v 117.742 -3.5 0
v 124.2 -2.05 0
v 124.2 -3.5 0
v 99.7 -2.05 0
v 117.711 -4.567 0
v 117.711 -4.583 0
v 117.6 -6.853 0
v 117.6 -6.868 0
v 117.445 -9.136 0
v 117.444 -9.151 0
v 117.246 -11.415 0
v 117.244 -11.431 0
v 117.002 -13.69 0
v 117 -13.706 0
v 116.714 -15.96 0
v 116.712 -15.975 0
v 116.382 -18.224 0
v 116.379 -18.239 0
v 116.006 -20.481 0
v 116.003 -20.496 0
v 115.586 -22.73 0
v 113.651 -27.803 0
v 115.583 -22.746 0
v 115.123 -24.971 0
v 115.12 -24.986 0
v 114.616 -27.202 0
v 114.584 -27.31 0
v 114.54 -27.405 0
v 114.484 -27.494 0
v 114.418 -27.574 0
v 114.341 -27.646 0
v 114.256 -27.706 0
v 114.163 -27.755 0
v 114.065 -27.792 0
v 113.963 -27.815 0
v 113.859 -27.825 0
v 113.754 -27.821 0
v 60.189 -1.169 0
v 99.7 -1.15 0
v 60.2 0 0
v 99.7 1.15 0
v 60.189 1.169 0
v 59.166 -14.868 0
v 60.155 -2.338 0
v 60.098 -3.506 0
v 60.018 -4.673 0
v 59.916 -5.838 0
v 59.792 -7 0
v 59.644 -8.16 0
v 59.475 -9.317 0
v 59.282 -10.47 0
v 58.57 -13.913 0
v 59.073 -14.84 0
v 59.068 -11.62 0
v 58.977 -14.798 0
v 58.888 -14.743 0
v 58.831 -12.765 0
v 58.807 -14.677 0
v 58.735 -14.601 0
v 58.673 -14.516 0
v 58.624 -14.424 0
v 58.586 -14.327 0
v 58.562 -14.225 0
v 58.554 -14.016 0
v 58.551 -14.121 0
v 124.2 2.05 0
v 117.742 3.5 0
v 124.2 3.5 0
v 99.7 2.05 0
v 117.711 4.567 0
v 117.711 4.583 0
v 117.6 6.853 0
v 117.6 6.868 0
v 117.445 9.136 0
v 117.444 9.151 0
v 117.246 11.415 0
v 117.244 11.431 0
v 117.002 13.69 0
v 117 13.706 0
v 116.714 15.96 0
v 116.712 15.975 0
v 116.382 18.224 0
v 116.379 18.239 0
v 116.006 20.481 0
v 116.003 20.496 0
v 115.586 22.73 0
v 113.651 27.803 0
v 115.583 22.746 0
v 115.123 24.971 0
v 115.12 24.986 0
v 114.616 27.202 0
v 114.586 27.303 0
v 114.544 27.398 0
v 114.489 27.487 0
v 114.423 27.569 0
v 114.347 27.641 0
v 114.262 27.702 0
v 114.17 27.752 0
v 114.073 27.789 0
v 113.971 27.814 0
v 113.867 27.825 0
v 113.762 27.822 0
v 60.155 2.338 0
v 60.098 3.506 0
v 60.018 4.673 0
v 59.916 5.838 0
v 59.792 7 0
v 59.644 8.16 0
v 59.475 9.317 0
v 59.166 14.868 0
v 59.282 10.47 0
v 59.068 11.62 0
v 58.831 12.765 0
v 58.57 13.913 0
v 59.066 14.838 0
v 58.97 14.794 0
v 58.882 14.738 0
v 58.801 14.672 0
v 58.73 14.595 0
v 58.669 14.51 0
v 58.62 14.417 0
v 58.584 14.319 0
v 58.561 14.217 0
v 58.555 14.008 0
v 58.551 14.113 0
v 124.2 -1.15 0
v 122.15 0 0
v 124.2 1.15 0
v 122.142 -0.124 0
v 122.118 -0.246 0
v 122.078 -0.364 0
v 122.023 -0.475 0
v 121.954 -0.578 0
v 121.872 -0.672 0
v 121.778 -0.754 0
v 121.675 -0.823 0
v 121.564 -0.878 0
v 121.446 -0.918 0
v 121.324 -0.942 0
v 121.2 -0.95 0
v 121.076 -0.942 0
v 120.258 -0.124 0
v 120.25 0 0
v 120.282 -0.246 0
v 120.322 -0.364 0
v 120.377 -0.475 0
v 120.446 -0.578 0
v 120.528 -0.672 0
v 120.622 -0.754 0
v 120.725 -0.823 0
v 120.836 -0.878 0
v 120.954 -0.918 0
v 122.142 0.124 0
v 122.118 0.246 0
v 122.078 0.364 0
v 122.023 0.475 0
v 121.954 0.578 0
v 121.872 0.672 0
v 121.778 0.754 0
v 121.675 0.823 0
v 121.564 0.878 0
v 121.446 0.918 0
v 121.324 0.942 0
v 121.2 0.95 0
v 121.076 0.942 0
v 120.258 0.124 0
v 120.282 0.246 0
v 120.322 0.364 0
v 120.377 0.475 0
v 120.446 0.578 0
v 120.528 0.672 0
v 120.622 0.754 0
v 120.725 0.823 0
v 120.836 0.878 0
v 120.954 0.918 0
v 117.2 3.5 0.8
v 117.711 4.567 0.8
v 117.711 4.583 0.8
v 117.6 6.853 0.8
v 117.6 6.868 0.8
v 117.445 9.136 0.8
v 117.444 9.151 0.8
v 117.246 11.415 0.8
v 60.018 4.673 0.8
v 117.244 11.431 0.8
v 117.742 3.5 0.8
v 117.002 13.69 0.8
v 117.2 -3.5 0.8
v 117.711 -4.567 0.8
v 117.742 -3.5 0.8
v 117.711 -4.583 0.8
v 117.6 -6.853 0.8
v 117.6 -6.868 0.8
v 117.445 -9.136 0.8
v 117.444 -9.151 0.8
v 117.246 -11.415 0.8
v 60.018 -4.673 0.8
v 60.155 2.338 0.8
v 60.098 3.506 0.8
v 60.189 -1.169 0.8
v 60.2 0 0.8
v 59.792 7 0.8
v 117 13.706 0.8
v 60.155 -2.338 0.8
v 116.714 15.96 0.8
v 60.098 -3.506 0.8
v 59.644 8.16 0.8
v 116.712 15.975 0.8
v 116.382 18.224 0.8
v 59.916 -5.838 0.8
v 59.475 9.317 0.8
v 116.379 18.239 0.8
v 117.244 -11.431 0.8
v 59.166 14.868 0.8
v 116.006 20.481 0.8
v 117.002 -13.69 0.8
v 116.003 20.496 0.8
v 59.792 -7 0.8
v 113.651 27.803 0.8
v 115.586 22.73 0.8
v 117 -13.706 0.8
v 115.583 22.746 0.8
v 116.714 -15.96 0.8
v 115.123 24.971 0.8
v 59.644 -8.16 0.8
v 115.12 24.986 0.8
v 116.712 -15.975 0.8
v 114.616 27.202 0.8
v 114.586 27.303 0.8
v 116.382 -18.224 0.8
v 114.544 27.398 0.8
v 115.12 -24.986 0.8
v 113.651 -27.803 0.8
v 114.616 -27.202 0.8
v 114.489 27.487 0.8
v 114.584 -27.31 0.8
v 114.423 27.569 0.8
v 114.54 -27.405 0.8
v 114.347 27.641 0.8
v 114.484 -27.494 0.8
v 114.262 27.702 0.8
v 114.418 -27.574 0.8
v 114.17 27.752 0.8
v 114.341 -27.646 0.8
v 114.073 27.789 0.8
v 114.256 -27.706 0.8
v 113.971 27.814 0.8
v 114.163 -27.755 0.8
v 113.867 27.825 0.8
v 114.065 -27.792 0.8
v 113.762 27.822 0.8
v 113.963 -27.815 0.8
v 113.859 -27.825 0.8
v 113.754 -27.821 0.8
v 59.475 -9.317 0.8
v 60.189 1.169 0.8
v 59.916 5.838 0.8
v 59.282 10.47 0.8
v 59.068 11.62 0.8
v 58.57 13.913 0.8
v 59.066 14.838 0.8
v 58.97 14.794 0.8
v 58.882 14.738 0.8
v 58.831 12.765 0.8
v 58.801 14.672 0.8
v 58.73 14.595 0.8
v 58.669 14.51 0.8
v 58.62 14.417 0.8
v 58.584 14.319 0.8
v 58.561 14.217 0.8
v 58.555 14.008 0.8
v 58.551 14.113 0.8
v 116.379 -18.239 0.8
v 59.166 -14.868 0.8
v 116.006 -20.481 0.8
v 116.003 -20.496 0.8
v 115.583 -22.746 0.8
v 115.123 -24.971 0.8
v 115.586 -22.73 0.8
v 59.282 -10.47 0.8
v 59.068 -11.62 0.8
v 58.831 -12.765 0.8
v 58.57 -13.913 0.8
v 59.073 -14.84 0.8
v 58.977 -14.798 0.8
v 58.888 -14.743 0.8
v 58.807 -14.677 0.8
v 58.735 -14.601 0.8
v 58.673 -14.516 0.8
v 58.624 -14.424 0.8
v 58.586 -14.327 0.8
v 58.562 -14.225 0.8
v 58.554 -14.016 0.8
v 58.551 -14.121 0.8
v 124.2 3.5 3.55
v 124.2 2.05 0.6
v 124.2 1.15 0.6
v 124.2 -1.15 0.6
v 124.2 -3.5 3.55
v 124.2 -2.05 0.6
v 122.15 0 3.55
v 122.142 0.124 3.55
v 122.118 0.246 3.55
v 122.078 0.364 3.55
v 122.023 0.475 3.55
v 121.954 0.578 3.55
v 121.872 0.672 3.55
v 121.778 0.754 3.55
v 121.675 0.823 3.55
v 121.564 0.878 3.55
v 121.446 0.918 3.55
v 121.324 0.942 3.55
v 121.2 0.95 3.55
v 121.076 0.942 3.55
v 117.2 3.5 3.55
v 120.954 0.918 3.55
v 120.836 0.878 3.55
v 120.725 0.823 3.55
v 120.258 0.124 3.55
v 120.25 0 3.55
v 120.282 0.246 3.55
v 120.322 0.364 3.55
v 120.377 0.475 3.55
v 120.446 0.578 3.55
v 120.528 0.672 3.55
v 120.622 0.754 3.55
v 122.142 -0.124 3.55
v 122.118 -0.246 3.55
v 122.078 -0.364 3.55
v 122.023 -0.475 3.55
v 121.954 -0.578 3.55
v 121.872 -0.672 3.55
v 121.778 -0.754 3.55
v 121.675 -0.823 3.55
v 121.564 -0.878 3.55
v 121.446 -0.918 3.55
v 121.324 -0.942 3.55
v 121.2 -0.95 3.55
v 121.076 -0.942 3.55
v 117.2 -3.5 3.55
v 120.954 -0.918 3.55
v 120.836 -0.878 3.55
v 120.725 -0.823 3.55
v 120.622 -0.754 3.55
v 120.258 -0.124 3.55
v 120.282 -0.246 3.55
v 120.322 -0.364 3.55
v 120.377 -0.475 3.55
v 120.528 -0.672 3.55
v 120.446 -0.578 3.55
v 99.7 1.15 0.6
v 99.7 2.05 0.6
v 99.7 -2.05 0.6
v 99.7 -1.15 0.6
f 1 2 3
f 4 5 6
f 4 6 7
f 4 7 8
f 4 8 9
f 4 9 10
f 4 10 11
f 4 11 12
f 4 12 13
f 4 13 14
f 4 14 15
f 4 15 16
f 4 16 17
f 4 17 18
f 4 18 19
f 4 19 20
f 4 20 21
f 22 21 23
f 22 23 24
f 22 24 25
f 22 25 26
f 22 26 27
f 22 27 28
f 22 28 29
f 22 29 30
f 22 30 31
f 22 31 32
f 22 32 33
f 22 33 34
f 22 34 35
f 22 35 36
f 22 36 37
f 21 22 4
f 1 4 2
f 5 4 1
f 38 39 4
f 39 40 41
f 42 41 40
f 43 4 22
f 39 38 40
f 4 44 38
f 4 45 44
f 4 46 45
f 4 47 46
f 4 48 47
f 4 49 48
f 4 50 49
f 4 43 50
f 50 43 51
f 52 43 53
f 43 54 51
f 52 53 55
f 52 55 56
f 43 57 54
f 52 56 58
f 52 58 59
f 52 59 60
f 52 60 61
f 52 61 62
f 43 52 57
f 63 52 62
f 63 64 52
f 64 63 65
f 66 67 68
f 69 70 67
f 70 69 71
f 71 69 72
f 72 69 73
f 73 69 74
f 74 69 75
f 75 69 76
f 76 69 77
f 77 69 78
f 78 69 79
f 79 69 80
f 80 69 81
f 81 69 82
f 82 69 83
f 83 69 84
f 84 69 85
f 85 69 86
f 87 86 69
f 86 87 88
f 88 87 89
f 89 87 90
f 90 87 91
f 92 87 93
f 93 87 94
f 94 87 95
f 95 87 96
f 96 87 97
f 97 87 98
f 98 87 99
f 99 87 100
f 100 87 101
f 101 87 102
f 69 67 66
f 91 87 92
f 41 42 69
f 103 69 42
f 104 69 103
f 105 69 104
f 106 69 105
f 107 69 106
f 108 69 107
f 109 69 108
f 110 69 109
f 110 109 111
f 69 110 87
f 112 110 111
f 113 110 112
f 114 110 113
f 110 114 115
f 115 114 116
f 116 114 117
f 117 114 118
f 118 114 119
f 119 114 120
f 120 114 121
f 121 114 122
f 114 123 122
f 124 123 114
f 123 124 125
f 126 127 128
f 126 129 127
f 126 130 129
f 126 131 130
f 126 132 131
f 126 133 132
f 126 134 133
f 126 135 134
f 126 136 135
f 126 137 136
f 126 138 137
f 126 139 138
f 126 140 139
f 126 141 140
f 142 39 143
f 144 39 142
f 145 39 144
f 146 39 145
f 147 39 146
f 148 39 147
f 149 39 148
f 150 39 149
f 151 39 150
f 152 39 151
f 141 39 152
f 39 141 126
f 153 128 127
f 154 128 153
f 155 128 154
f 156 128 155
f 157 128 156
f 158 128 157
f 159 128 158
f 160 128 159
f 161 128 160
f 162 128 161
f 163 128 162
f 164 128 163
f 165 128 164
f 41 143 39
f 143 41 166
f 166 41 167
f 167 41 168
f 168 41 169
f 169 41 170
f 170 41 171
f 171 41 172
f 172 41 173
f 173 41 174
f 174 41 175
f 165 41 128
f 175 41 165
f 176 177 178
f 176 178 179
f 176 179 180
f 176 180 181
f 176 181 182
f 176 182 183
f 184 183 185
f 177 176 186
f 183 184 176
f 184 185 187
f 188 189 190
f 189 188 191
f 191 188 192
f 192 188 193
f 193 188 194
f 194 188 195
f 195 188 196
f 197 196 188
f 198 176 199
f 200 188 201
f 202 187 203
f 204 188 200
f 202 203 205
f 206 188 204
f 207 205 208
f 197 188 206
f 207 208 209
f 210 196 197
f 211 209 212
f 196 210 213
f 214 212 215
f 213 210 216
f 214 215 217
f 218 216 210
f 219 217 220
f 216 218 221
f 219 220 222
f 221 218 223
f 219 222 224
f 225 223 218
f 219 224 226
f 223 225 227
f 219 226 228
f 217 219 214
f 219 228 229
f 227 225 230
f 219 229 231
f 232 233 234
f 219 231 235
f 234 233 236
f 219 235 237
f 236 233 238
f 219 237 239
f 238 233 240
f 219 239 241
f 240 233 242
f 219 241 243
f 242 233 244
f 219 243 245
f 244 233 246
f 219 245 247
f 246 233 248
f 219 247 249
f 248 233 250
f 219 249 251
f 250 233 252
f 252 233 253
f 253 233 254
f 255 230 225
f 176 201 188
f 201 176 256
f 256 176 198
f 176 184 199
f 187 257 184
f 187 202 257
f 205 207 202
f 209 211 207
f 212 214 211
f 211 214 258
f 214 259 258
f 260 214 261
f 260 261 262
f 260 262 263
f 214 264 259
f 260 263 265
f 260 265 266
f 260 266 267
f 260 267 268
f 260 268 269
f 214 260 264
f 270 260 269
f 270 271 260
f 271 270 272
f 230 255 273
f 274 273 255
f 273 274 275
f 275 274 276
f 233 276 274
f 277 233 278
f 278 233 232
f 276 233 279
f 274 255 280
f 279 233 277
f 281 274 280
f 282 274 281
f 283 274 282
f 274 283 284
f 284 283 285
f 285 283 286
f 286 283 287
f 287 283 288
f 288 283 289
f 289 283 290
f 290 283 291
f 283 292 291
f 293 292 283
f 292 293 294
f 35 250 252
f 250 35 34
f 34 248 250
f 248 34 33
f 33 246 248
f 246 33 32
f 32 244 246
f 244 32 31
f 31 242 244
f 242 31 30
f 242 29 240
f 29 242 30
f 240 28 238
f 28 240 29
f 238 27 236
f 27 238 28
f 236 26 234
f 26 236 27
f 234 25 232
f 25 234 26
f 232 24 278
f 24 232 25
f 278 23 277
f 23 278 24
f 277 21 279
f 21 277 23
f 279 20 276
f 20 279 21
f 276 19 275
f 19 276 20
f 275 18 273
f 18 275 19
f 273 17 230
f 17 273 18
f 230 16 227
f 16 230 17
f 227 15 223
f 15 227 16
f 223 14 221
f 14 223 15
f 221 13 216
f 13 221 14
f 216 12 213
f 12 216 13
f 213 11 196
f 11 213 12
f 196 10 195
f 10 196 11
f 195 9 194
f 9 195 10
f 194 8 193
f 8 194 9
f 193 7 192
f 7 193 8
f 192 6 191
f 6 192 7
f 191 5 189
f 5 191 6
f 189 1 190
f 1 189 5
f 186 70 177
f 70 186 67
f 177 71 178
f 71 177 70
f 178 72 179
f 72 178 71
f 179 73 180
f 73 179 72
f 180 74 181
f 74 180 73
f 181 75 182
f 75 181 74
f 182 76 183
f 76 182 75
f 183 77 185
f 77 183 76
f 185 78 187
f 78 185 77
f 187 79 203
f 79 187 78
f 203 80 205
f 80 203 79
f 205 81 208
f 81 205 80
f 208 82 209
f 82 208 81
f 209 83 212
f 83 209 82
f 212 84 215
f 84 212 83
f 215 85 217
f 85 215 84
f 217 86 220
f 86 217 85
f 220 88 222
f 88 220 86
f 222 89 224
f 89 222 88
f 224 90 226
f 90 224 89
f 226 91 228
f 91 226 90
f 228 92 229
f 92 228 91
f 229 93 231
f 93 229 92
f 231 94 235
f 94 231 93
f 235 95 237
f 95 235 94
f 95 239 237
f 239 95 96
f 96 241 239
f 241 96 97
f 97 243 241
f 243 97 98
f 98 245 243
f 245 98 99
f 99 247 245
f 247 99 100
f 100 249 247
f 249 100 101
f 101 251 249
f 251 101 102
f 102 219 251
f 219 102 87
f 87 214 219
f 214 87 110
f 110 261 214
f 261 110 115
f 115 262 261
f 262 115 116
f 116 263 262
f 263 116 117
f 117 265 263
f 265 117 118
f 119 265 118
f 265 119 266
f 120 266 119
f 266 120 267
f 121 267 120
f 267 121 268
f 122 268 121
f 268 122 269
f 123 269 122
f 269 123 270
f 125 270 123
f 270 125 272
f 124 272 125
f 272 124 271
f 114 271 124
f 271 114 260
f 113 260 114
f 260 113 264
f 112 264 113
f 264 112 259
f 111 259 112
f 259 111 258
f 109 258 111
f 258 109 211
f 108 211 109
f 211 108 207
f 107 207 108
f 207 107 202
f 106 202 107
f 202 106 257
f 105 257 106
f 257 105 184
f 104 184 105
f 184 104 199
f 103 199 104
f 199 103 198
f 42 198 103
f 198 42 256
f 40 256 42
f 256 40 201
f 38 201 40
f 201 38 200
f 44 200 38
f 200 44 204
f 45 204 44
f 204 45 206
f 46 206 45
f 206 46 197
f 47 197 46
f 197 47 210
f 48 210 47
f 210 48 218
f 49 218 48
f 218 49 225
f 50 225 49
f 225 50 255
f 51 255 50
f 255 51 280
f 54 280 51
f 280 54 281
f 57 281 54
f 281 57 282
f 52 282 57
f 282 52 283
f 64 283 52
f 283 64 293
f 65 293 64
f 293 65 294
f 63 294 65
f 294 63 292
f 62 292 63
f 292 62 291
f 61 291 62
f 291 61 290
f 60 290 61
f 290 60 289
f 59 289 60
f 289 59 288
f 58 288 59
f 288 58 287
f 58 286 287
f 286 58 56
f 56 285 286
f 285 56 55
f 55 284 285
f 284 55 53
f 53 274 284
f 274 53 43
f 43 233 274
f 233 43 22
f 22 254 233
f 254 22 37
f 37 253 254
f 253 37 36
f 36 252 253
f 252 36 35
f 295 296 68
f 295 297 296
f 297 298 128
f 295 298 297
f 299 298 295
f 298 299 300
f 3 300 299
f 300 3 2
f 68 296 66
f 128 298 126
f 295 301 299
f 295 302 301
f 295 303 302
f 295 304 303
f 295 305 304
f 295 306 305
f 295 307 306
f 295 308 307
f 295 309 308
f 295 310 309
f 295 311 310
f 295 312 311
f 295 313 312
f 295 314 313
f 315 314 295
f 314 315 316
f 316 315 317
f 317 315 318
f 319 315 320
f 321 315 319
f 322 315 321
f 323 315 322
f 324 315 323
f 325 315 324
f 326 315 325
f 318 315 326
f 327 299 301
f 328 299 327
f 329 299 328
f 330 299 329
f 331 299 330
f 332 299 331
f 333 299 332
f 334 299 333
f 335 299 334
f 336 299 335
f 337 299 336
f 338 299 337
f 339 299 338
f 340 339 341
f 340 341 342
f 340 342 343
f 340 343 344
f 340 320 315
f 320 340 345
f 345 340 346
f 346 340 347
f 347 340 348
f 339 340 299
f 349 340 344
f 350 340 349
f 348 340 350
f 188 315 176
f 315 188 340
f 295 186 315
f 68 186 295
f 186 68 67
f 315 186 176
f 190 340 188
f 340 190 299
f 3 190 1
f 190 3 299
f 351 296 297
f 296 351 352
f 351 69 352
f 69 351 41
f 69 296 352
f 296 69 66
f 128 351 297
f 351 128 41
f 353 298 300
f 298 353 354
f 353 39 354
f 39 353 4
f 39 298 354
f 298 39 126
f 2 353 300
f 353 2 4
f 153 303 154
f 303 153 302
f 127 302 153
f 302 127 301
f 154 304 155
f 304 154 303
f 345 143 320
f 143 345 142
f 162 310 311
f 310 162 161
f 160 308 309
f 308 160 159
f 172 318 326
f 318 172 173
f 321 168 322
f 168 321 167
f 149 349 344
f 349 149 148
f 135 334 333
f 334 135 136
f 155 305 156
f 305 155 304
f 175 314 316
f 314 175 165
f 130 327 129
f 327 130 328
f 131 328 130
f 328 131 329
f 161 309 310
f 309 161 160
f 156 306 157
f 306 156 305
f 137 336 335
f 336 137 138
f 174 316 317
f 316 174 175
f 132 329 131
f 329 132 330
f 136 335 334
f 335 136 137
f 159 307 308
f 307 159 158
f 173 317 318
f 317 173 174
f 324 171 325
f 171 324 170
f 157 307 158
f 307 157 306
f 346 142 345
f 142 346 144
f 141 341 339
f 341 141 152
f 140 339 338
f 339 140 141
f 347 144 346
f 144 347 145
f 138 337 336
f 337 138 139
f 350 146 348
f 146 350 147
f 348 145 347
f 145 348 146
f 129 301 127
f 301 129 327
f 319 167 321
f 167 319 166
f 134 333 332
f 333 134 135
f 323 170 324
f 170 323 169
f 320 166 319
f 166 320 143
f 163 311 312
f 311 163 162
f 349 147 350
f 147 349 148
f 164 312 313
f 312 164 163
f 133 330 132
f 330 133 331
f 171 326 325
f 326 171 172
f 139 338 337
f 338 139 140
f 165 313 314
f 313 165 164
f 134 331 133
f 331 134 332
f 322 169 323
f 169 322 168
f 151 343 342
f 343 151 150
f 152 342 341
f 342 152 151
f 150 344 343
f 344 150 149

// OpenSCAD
// Gen-DA — bobbin LID (top flange + locating tab). Print x12, flange face DOWN on the bed.
// CA-glue onto the hub top BEFORE winding. Tab = lap joint into the stator tab pocket; 1.75 mm filament
// pin through pin hole + stator ledge, trim flush. Lead slots carry both leads flush.
include <parameters.scad>;
$fn = 48;
module sector_2d(r_in, r_out, ang) {
    polygon([
        for (a = [-ang/2 : ang/24 : ang/2]) [r_in*cos(a), r_in*sin(a)],
        for (a = [ang/2 : -ang/24 : -ang/2]) [r_out*cos(a), r_out*sin(a)]
    ]);
}
module footprint_2d() { offset(r=wall) sector_2d(coil_id_r, coil_od_r, span_deg); }
module hub_2d()       { offset(delta=-coil_core_inset) sector_2d(coil_id_r, coil_od_r, span_deg); }

difference() {
    union() {
        linear_extrude(flange_t) footprint_2d();
        translate([coil_od_r + 0.2, -tab_w/2, 0]) cube([tab_len, tab_w, tab_h]);
    }
    translate([coil_mount_r, 0, -0.1]) cylinder(d=pin_d, h=tab_h + 1);
    for (y = [lead_y, -lead_y])
        translate([coil_od_r - coil_core_inset - 0.5, y - lead_slot_w/2, -0.1])
            cube([coil_core_inset + tab_len + 2, lead_slot_w, lead_groove_d + 0.1]);
}
